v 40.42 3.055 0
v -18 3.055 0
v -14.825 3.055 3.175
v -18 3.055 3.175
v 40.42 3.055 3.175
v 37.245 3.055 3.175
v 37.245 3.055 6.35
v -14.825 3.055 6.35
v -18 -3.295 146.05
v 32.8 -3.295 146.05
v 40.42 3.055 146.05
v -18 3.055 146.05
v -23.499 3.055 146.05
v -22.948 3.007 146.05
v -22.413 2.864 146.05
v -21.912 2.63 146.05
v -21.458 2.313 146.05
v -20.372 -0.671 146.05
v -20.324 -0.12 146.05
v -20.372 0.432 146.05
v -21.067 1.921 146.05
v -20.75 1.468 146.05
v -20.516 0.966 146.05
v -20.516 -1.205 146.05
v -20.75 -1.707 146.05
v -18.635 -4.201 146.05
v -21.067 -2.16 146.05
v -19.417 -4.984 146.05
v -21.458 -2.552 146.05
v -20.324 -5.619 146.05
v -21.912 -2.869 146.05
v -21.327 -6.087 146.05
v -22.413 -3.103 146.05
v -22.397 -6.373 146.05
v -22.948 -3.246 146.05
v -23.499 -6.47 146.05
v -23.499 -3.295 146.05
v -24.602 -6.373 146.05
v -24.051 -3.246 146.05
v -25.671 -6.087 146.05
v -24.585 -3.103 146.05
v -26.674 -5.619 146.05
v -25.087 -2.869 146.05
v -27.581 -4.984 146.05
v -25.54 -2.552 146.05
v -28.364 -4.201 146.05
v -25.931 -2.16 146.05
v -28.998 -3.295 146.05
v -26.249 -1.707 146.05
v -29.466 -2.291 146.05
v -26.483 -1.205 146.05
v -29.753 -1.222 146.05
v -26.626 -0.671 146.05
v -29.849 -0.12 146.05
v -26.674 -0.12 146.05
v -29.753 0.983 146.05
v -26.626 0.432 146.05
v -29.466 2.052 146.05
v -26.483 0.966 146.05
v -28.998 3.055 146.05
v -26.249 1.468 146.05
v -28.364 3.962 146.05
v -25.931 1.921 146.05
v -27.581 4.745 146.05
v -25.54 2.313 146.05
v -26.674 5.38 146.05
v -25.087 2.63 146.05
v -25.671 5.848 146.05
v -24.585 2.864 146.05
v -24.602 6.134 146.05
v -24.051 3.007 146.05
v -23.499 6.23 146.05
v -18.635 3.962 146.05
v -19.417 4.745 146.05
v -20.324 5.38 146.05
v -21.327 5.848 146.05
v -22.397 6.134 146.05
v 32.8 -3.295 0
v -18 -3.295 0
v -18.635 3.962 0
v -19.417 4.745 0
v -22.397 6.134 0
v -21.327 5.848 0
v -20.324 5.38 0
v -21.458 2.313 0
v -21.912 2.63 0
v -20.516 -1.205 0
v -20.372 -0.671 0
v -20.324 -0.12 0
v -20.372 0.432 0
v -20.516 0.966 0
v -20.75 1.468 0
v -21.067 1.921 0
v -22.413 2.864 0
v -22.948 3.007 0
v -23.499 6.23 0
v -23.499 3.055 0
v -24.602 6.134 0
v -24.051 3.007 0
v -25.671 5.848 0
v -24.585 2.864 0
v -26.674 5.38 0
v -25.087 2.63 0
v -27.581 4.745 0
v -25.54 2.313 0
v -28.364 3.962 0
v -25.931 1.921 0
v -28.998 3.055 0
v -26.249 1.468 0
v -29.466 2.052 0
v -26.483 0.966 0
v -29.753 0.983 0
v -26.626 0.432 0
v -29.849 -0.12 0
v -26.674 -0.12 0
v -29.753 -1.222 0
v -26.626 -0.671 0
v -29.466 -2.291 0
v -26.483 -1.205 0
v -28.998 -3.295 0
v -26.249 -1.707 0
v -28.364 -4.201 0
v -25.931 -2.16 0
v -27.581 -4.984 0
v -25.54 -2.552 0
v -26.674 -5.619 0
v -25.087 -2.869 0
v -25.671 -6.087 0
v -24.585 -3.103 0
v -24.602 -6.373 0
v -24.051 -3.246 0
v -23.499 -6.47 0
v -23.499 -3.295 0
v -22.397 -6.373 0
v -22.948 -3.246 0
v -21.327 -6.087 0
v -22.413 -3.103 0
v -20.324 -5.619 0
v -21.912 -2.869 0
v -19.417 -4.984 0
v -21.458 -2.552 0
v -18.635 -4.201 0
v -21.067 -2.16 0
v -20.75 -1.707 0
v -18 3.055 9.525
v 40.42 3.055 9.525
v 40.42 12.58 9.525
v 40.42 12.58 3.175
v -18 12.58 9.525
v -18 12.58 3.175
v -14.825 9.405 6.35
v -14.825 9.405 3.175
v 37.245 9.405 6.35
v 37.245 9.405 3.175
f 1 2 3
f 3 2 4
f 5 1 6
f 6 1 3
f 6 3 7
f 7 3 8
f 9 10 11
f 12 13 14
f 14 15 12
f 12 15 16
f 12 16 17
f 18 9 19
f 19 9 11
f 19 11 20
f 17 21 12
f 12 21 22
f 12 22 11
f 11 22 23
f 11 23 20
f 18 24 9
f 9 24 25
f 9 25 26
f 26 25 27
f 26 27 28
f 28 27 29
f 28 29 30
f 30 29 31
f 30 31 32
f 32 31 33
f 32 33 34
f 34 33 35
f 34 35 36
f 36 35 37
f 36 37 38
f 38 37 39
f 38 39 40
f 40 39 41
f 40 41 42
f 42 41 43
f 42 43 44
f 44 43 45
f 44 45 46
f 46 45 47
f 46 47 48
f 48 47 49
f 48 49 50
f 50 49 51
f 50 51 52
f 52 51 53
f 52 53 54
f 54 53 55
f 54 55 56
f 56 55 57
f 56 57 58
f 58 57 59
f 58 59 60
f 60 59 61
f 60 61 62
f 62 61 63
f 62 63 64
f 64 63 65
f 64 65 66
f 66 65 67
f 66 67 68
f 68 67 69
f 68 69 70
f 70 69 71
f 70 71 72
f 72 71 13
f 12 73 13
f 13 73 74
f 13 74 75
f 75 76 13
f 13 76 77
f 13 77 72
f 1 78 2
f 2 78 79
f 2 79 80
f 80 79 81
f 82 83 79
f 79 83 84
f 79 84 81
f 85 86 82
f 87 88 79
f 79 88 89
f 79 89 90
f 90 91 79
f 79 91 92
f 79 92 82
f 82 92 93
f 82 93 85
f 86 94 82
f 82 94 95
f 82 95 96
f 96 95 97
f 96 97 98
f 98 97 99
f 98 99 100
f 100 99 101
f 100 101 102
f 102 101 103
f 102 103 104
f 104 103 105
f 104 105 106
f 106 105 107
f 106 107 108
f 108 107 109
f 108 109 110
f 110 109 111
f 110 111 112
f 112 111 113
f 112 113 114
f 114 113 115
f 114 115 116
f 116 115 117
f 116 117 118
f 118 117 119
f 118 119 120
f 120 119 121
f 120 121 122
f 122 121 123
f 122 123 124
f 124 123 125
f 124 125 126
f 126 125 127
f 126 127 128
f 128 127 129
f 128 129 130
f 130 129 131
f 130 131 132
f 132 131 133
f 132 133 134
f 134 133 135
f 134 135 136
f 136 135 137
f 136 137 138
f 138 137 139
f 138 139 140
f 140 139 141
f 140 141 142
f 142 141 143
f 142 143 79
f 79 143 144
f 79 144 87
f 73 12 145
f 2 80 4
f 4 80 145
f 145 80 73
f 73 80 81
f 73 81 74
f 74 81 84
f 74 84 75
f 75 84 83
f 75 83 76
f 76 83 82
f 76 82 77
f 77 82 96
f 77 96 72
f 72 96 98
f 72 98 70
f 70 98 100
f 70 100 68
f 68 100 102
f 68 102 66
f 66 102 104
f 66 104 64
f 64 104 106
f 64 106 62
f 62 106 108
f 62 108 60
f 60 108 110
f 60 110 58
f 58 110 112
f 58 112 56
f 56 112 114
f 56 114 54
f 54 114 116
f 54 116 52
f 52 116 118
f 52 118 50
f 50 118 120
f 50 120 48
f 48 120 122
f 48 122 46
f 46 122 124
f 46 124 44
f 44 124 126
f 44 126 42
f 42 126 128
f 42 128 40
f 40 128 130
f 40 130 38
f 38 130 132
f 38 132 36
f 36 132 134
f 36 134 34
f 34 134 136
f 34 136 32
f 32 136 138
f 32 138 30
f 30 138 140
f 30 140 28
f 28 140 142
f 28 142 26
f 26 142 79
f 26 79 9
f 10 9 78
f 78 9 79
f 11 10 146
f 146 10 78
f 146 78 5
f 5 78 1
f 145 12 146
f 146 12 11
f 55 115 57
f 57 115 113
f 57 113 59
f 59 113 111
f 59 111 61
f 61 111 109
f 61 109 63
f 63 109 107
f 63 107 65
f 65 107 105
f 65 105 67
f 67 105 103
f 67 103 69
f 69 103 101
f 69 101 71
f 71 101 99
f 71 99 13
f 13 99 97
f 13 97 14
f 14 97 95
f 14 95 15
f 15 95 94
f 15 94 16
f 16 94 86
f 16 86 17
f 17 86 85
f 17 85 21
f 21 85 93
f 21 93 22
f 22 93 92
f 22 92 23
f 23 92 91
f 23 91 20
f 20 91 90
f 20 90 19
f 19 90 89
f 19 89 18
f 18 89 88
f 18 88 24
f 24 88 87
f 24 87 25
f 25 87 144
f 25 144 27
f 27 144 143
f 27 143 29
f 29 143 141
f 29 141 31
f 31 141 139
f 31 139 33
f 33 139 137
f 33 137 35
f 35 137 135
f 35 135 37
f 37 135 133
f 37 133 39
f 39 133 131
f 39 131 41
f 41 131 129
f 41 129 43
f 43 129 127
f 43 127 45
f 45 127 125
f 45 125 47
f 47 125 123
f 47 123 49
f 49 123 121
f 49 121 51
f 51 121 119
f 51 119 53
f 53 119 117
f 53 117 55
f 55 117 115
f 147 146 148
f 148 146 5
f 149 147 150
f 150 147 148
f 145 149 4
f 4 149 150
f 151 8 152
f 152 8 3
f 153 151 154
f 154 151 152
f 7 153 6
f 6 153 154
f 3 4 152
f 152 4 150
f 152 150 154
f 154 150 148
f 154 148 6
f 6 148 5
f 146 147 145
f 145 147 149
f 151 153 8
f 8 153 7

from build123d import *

# Parameters (mm, degrees)
SKETCH1_R           = 3.175
BOSS_EXTRUDE1_DEPTH = 146.05
BOSS_EXTRUDE2_DEPTH = 3.175
SKETCH3_W           = 58.42
SKETCH3_H           = 9.525
BOSS_EXTRUDE3_DEPTH = 3.175


with BuildPart() as part:
    # Sketch1 → Boss-Extrude1 (new body)
    with BuildSketch(Plane.XY):
        with BuildLine():
            Line((40.420068278, 3.055455197), (32.800068278, -3.294544803))
            Line((32.800068278, -3.294544803), (-17.999931722, -3.294544803))
            ThreePointArc((-17.999931722, -3.294544803), (-29.849193037, -0.119544803), (-17.999931722, 3.055455197))
            Line((-17.999931722, 3.055455197), (40.420068278, 3.055455197))
        make_face()
        with Locations((-23.499193037, -0.119544803)):
            Circle(SKETCH1_R, mode=Mode.SUBTRACT)
    extrude(amount=BOSS_EXTRUDE1_DEPTH)

    # Sketch2 → Boss-Extrude2 (add)
    with BuildSketch(Plane.XY.offset(3.175)):
        Polygon((-17.999931722, 3.055455197), (-14.824931722, 3.055455197), (-14.824931722, 9.405455197), (37.245068278, 9.405455197), (37.245068278, 3.055455197), (40.420068278, 3.055455197), (40.420068278, 12.580455197), (-17.999931722, 12.580455197), align=None)
    extrude(amount=BOSS_EXTRUDE2_DEPTH)

    # Sketch3 → Boss-Extrude3 (add)
    with BuildSketch(Plane.XY.offset(6.35)):
        with Locations((11.210068278, 7.817955197)):
            Rectangle(SKETCH3_W, SKETCH3_H)
    extrude(amount=BOSS_EXTRUDE3_DEPTH)


solid = part.part
